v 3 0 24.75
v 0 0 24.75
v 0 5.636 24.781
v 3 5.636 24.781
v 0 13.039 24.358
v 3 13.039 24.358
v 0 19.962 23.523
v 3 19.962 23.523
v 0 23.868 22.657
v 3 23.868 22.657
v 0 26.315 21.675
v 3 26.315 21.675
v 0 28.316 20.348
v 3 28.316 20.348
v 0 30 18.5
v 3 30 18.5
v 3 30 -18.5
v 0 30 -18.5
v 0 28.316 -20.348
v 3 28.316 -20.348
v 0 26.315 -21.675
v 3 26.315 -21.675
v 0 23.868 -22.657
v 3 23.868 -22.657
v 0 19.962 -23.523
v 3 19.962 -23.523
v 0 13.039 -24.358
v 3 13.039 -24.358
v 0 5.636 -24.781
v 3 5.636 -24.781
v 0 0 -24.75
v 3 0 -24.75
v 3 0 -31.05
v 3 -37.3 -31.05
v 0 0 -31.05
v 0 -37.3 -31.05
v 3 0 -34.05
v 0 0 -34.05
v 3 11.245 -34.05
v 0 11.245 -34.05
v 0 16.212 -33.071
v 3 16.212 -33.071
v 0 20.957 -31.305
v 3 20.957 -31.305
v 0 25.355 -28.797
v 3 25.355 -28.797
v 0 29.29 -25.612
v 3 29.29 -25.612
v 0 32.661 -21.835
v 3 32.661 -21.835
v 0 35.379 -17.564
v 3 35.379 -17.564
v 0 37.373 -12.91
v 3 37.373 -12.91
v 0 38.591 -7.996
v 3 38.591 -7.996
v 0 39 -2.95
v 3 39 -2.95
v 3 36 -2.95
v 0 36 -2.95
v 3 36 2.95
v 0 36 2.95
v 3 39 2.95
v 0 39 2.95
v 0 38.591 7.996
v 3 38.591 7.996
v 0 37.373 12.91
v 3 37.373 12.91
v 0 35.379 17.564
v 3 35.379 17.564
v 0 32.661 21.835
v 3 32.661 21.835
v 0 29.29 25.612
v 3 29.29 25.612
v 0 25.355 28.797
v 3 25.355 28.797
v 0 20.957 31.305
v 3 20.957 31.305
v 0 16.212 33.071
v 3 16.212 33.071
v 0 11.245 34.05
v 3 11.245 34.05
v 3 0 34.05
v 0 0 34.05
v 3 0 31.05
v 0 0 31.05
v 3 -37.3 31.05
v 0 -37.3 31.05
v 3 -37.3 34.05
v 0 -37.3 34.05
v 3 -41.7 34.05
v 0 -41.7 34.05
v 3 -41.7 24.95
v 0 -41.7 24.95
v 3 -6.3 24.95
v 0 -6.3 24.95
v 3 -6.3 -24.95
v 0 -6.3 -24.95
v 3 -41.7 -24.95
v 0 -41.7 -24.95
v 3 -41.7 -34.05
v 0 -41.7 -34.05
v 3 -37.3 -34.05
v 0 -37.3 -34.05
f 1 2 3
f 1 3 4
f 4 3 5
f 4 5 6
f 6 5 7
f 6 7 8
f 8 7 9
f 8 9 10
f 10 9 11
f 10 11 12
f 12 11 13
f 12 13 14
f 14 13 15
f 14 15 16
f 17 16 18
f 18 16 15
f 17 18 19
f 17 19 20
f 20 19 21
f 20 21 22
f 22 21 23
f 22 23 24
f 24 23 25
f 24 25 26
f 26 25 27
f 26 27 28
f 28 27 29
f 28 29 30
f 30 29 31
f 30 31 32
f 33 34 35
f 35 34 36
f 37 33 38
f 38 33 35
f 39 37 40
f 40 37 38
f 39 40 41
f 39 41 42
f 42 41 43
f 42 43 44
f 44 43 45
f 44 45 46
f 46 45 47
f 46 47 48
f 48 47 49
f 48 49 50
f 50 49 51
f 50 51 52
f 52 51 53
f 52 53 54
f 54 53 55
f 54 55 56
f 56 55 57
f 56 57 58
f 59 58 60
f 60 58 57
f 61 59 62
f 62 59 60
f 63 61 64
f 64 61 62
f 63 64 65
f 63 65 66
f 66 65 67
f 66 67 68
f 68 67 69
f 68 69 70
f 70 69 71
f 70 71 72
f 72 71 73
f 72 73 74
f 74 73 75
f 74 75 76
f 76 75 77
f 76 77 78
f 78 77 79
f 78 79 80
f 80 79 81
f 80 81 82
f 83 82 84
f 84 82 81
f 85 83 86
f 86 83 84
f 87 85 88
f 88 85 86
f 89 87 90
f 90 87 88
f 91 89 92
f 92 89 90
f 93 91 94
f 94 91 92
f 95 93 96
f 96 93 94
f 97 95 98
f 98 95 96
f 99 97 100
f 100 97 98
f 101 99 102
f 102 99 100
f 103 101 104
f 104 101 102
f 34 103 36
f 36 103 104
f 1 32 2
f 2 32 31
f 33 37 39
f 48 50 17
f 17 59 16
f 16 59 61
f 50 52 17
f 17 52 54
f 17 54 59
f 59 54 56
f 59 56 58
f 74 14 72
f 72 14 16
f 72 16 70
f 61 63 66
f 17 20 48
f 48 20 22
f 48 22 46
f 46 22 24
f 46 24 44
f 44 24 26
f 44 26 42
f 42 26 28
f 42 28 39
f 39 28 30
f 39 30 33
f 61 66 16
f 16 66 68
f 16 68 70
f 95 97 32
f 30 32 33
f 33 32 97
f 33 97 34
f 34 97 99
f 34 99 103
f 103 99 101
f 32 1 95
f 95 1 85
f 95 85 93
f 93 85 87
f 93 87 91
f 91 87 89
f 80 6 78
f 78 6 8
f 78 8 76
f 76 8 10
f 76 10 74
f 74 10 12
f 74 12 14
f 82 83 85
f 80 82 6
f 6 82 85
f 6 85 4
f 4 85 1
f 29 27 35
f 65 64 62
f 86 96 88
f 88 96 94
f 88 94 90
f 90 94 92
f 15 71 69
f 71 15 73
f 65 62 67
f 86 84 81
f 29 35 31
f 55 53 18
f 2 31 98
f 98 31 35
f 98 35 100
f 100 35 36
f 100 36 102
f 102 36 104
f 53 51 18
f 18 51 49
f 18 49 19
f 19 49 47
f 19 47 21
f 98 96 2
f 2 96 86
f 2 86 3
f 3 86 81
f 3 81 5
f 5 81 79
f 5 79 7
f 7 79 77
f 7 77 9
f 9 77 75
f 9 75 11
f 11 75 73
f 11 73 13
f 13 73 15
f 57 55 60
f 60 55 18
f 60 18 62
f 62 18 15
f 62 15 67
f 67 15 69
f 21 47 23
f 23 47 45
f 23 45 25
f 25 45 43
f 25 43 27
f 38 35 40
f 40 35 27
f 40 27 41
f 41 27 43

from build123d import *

# Parameters (mm, degrees)
BOSS_EXTRUDE1_DEPTH = 3


with BuildPart() as part:
    # Sketch1 → Boss-Extrude1 (new body)
    with BuildSketch(Plane(origin=(0, 0, 0), x_dir=(0, 0, -1), z_dir=(1, 0, 0))):
        with BuildLine():
            Line((-31.05, 0), (-24.75, 0))
            add(Edge.make_bspline(
                [(-18.5, 30), (-21.89992175, 27.622752142), (-23.338614893, 22.064542324), (-24.603317776, 11.688892455), (-24.929004991, 4.971961719), (-24.75, 0)],
                knots=[0, 0, 0, 0, 0.363581561, 0.525534897, 1, 1, 1, 1], degree=3))
            Line((-18.5, 30), (0, 30))
            Line((0, 30), (0, 36))
            Line((0, 36), (-2.95, 36))
            Line((-2.95, 36), (-2.95, 39))
            ThreePointArc((-2.95, 39), (-23.791917434, 31.05229513), (-34.05, 11.24514296))
            Line((-34.05, 11.24514296), (-34.05, 0))
            Line((-34.05, 0), (-31.05, 0))
        make_face()
        with BuildLine():
            add(Edge.make_bspline(
                [(18.5, 30), (21.89992175, 27.622752142), (23.338614893, 22.064542324), (24.603317776, 11.688892455), (24.929004991, 4.971961719), (24.75, 0)],
                knots=[0, 0, 0, 0, 0.363581561, 0.525534897, 1, 1, 1, 1], degree=3))
            Line((24.75, 0), (31.05, 0))
            Line((31.05, 0), (34.05, 0))
            Line((34.05, 0), (34.05, 11.24514296))
            ThreePointArc((34.05, 11.24514296), (23.791917434, 31.05229513), (2.95, 39))
            Line((2.95, 39), (2.95, 36))
            Line((2.95, 36), (0, 36))
            Line((0, 36), (0, 30))
            Line((0, 30), (18.5, 30))
        make_face()
        Polygon((24.75, 0), (0, 0), (0, -6.3), (24.95, -6.3), (24.95, -41.7), (34.05, -41.7), (34.05, -37.3), (31.05, -37.3), (31.05, 0), align=None)
        Polygon((0, 0), (-24.75, 0), (-31.05, 0), (-31.05, -37.3), (-34.05, -37.3), (-34.05, -41.7), (-24.95, -41.7), (-24.95, -6.3), (0, -6.3), align=None)
    extrude(amount=BOSS_EXTRUDE1_DEPTH)


solid = part.part
